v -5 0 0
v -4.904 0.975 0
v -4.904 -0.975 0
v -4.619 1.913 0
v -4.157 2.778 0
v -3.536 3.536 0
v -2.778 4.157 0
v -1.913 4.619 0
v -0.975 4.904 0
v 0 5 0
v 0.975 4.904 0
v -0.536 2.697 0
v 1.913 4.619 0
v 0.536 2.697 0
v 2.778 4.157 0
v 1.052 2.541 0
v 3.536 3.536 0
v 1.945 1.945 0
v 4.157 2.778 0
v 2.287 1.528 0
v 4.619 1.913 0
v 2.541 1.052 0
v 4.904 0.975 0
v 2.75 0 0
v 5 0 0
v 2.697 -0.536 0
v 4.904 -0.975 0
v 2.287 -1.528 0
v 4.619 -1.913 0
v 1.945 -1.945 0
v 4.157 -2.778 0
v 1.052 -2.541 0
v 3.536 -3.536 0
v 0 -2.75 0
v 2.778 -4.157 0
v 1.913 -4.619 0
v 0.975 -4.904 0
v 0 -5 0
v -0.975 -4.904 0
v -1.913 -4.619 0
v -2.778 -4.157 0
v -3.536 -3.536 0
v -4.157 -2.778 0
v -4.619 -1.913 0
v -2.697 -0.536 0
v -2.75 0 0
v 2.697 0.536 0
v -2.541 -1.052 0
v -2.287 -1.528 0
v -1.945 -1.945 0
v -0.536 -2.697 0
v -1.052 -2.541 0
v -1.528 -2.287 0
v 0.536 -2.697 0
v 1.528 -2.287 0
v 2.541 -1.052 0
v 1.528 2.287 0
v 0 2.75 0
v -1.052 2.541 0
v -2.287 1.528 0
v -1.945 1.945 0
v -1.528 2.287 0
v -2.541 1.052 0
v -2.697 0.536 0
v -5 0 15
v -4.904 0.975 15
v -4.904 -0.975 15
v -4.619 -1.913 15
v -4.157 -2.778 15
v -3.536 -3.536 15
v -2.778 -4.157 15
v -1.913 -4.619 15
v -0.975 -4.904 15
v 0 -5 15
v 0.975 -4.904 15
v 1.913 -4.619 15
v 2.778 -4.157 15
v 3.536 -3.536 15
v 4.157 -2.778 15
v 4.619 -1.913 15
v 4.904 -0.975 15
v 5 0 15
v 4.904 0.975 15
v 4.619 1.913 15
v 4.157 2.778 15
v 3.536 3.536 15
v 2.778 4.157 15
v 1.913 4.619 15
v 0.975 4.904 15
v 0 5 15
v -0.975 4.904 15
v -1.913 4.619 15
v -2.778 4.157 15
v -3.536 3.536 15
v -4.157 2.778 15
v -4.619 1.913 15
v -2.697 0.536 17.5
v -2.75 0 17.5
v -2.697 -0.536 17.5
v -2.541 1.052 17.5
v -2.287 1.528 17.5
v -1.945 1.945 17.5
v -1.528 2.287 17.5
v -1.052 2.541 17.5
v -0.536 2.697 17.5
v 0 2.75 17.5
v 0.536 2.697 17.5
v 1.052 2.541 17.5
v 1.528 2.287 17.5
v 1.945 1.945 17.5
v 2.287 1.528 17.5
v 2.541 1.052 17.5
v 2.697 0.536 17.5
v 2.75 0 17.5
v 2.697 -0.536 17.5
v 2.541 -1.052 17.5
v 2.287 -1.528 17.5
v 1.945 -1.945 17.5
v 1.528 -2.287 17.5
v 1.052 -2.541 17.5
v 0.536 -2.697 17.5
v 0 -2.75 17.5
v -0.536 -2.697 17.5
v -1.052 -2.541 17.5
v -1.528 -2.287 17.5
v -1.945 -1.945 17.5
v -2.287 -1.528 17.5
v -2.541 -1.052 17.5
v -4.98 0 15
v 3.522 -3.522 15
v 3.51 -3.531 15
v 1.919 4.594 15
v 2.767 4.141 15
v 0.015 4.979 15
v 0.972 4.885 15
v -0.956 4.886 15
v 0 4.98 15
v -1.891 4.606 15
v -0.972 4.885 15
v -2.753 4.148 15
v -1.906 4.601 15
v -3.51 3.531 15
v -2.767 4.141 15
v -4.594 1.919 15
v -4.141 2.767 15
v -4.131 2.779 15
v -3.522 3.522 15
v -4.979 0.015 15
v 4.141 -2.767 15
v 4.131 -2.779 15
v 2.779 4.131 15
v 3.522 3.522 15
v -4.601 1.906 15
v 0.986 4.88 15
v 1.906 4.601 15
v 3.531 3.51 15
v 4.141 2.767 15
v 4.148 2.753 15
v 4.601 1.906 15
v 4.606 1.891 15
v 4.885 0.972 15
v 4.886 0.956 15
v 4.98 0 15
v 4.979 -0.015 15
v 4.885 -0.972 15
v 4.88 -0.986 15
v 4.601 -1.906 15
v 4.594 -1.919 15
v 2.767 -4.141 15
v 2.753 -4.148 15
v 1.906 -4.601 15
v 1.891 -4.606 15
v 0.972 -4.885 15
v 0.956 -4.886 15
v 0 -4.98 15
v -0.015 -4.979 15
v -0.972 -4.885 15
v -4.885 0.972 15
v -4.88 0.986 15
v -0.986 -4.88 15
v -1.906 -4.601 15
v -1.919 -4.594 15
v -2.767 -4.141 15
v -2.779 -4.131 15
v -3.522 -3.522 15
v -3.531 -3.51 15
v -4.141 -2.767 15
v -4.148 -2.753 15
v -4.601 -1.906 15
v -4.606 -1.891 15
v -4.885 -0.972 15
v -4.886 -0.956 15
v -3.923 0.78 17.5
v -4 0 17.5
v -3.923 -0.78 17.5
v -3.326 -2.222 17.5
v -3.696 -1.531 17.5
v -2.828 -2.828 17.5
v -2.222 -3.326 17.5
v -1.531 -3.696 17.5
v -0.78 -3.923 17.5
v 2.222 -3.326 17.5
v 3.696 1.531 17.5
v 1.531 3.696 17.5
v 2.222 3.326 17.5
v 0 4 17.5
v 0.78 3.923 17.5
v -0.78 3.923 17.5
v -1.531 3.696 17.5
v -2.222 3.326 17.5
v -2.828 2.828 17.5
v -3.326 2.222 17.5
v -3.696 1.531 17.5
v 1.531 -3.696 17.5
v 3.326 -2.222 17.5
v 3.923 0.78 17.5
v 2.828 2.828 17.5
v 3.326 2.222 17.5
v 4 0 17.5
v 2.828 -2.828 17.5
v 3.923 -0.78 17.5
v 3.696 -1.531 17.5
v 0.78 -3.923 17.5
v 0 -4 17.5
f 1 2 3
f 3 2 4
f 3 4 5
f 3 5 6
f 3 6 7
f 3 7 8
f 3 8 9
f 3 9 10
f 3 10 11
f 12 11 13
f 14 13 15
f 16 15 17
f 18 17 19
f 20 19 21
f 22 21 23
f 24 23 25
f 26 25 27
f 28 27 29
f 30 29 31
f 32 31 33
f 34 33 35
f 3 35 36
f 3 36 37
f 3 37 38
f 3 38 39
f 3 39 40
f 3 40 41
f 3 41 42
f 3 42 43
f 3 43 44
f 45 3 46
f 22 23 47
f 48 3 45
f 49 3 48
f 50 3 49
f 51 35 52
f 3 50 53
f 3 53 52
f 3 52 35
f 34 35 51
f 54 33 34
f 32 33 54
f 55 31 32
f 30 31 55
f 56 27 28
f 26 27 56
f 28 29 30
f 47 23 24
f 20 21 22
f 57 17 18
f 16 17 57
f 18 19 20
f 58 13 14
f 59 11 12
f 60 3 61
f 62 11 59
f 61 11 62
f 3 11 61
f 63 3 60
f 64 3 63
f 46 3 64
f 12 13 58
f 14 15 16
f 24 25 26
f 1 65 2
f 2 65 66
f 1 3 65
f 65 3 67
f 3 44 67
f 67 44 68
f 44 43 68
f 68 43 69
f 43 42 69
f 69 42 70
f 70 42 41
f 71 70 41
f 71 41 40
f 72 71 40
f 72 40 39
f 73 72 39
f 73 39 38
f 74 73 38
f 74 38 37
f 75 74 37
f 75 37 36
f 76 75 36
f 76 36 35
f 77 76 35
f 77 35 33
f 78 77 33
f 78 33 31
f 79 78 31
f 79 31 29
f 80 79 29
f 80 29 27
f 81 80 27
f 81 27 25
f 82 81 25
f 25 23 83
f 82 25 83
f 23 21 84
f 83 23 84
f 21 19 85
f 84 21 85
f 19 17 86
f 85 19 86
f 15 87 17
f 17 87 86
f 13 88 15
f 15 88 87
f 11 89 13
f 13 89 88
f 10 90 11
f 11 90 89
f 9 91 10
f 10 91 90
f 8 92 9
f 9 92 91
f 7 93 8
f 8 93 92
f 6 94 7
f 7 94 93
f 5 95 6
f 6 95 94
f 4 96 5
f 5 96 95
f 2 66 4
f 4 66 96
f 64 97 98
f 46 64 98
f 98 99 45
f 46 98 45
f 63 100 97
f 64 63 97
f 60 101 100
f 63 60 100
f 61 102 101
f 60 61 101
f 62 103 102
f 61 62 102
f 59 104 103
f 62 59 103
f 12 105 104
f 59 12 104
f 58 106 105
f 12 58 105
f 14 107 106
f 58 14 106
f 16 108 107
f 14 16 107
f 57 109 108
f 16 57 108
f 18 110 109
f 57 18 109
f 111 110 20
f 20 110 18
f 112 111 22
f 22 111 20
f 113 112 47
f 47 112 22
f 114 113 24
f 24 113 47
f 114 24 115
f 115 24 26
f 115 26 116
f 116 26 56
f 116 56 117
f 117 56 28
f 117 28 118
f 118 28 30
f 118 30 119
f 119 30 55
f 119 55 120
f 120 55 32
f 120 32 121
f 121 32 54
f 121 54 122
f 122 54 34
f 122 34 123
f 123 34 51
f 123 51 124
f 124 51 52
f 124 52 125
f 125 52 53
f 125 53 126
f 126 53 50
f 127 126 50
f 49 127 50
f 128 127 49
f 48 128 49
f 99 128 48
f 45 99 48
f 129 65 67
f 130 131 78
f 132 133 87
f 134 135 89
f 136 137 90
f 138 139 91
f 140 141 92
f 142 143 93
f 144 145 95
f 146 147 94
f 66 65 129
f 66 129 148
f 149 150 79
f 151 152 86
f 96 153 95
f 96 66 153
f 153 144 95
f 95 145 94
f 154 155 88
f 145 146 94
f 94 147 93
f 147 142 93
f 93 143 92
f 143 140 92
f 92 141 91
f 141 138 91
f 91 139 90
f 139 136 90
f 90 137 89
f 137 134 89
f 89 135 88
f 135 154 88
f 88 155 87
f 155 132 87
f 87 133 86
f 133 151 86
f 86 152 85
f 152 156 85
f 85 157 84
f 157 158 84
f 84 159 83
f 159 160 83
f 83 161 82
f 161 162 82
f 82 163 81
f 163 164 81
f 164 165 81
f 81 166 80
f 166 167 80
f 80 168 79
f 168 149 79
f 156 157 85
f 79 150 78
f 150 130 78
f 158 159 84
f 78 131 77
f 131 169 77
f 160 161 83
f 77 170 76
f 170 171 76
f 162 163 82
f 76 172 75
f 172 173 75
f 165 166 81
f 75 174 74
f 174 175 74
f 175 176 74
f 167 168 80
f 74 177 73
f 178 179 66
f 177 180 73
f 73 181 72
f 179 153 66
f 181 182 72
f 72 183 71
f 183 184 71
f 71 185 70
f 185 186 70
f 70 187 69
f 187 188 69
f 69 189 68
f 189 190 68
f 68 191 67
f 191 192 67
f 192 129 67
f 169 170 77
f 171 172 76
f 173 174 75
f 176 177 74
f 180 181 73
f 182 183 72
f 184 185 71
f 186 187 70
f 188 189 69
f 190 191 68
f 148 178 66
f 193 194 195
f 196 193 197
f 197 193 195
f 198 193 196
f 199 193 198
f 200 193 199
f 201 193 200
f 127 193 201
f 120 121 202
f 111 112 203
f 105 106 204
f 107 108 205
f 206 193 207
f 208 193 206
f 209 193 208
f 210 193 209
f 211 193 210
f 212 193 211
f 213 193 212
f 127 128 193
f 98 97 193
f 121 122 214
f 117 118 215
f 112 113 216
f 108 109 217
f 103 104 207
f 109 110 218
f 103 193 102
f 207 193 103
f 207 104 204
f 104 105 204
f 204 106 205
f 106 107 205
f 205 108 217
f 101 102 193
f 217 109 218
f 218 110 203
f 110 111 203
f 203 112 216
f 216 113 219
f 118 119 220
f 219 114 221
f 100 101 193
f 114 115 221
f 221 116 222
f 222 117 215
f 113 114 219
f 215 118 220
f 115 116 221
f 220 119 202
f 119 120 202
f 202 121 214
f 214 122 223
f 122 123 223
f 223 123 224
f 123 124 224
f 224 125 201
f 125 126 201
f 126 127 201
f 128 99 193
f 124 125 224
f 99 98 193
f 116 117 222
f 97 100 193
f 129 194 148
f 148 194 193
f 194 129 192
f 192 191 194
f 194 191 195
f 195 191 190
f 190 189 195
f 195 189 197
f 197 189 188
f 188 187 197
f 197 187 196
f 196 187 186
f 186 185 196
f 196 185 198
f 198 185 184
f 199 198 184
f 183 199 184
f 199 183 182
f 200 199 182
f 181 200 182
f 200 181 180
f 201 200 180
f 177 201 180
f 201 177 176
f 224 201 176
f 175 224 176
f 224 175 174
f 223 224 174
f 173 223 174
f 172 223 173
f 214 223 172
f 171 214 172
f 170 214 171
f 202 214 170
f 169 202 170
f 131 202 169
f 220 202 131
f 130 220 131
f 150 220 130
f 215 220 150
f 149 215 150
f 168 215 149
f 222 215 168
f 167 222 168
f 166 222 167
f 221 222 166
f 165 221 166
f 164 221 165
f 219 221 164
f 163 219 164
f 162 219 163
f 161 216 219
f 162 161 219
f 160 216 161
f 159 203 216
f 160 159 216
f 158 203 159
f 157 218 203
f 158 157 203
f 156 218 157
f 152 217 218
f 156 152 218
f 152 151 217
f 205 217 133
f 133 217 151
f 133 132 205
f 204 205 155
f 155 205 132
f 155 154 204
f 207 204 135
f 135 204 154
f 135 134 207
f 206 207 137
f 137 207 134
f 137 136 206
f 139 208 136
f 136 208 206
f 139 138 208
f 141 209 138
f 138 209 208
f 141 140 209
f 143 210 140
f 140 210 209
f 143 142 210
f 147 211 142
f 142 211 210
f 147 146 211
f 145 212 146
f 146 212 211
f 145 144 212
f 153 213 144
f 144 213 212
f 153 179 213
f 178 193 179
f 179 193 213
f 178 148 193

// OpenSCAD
$fn=32;

difference() {
  union() {
    cylinder(15,5,5);
    translate([0,0,14.95]) cylinder(2.55,5,4);
  }
  translate([0,0,-0.1]) cylinder(17.7,2.75,2.75);
}
